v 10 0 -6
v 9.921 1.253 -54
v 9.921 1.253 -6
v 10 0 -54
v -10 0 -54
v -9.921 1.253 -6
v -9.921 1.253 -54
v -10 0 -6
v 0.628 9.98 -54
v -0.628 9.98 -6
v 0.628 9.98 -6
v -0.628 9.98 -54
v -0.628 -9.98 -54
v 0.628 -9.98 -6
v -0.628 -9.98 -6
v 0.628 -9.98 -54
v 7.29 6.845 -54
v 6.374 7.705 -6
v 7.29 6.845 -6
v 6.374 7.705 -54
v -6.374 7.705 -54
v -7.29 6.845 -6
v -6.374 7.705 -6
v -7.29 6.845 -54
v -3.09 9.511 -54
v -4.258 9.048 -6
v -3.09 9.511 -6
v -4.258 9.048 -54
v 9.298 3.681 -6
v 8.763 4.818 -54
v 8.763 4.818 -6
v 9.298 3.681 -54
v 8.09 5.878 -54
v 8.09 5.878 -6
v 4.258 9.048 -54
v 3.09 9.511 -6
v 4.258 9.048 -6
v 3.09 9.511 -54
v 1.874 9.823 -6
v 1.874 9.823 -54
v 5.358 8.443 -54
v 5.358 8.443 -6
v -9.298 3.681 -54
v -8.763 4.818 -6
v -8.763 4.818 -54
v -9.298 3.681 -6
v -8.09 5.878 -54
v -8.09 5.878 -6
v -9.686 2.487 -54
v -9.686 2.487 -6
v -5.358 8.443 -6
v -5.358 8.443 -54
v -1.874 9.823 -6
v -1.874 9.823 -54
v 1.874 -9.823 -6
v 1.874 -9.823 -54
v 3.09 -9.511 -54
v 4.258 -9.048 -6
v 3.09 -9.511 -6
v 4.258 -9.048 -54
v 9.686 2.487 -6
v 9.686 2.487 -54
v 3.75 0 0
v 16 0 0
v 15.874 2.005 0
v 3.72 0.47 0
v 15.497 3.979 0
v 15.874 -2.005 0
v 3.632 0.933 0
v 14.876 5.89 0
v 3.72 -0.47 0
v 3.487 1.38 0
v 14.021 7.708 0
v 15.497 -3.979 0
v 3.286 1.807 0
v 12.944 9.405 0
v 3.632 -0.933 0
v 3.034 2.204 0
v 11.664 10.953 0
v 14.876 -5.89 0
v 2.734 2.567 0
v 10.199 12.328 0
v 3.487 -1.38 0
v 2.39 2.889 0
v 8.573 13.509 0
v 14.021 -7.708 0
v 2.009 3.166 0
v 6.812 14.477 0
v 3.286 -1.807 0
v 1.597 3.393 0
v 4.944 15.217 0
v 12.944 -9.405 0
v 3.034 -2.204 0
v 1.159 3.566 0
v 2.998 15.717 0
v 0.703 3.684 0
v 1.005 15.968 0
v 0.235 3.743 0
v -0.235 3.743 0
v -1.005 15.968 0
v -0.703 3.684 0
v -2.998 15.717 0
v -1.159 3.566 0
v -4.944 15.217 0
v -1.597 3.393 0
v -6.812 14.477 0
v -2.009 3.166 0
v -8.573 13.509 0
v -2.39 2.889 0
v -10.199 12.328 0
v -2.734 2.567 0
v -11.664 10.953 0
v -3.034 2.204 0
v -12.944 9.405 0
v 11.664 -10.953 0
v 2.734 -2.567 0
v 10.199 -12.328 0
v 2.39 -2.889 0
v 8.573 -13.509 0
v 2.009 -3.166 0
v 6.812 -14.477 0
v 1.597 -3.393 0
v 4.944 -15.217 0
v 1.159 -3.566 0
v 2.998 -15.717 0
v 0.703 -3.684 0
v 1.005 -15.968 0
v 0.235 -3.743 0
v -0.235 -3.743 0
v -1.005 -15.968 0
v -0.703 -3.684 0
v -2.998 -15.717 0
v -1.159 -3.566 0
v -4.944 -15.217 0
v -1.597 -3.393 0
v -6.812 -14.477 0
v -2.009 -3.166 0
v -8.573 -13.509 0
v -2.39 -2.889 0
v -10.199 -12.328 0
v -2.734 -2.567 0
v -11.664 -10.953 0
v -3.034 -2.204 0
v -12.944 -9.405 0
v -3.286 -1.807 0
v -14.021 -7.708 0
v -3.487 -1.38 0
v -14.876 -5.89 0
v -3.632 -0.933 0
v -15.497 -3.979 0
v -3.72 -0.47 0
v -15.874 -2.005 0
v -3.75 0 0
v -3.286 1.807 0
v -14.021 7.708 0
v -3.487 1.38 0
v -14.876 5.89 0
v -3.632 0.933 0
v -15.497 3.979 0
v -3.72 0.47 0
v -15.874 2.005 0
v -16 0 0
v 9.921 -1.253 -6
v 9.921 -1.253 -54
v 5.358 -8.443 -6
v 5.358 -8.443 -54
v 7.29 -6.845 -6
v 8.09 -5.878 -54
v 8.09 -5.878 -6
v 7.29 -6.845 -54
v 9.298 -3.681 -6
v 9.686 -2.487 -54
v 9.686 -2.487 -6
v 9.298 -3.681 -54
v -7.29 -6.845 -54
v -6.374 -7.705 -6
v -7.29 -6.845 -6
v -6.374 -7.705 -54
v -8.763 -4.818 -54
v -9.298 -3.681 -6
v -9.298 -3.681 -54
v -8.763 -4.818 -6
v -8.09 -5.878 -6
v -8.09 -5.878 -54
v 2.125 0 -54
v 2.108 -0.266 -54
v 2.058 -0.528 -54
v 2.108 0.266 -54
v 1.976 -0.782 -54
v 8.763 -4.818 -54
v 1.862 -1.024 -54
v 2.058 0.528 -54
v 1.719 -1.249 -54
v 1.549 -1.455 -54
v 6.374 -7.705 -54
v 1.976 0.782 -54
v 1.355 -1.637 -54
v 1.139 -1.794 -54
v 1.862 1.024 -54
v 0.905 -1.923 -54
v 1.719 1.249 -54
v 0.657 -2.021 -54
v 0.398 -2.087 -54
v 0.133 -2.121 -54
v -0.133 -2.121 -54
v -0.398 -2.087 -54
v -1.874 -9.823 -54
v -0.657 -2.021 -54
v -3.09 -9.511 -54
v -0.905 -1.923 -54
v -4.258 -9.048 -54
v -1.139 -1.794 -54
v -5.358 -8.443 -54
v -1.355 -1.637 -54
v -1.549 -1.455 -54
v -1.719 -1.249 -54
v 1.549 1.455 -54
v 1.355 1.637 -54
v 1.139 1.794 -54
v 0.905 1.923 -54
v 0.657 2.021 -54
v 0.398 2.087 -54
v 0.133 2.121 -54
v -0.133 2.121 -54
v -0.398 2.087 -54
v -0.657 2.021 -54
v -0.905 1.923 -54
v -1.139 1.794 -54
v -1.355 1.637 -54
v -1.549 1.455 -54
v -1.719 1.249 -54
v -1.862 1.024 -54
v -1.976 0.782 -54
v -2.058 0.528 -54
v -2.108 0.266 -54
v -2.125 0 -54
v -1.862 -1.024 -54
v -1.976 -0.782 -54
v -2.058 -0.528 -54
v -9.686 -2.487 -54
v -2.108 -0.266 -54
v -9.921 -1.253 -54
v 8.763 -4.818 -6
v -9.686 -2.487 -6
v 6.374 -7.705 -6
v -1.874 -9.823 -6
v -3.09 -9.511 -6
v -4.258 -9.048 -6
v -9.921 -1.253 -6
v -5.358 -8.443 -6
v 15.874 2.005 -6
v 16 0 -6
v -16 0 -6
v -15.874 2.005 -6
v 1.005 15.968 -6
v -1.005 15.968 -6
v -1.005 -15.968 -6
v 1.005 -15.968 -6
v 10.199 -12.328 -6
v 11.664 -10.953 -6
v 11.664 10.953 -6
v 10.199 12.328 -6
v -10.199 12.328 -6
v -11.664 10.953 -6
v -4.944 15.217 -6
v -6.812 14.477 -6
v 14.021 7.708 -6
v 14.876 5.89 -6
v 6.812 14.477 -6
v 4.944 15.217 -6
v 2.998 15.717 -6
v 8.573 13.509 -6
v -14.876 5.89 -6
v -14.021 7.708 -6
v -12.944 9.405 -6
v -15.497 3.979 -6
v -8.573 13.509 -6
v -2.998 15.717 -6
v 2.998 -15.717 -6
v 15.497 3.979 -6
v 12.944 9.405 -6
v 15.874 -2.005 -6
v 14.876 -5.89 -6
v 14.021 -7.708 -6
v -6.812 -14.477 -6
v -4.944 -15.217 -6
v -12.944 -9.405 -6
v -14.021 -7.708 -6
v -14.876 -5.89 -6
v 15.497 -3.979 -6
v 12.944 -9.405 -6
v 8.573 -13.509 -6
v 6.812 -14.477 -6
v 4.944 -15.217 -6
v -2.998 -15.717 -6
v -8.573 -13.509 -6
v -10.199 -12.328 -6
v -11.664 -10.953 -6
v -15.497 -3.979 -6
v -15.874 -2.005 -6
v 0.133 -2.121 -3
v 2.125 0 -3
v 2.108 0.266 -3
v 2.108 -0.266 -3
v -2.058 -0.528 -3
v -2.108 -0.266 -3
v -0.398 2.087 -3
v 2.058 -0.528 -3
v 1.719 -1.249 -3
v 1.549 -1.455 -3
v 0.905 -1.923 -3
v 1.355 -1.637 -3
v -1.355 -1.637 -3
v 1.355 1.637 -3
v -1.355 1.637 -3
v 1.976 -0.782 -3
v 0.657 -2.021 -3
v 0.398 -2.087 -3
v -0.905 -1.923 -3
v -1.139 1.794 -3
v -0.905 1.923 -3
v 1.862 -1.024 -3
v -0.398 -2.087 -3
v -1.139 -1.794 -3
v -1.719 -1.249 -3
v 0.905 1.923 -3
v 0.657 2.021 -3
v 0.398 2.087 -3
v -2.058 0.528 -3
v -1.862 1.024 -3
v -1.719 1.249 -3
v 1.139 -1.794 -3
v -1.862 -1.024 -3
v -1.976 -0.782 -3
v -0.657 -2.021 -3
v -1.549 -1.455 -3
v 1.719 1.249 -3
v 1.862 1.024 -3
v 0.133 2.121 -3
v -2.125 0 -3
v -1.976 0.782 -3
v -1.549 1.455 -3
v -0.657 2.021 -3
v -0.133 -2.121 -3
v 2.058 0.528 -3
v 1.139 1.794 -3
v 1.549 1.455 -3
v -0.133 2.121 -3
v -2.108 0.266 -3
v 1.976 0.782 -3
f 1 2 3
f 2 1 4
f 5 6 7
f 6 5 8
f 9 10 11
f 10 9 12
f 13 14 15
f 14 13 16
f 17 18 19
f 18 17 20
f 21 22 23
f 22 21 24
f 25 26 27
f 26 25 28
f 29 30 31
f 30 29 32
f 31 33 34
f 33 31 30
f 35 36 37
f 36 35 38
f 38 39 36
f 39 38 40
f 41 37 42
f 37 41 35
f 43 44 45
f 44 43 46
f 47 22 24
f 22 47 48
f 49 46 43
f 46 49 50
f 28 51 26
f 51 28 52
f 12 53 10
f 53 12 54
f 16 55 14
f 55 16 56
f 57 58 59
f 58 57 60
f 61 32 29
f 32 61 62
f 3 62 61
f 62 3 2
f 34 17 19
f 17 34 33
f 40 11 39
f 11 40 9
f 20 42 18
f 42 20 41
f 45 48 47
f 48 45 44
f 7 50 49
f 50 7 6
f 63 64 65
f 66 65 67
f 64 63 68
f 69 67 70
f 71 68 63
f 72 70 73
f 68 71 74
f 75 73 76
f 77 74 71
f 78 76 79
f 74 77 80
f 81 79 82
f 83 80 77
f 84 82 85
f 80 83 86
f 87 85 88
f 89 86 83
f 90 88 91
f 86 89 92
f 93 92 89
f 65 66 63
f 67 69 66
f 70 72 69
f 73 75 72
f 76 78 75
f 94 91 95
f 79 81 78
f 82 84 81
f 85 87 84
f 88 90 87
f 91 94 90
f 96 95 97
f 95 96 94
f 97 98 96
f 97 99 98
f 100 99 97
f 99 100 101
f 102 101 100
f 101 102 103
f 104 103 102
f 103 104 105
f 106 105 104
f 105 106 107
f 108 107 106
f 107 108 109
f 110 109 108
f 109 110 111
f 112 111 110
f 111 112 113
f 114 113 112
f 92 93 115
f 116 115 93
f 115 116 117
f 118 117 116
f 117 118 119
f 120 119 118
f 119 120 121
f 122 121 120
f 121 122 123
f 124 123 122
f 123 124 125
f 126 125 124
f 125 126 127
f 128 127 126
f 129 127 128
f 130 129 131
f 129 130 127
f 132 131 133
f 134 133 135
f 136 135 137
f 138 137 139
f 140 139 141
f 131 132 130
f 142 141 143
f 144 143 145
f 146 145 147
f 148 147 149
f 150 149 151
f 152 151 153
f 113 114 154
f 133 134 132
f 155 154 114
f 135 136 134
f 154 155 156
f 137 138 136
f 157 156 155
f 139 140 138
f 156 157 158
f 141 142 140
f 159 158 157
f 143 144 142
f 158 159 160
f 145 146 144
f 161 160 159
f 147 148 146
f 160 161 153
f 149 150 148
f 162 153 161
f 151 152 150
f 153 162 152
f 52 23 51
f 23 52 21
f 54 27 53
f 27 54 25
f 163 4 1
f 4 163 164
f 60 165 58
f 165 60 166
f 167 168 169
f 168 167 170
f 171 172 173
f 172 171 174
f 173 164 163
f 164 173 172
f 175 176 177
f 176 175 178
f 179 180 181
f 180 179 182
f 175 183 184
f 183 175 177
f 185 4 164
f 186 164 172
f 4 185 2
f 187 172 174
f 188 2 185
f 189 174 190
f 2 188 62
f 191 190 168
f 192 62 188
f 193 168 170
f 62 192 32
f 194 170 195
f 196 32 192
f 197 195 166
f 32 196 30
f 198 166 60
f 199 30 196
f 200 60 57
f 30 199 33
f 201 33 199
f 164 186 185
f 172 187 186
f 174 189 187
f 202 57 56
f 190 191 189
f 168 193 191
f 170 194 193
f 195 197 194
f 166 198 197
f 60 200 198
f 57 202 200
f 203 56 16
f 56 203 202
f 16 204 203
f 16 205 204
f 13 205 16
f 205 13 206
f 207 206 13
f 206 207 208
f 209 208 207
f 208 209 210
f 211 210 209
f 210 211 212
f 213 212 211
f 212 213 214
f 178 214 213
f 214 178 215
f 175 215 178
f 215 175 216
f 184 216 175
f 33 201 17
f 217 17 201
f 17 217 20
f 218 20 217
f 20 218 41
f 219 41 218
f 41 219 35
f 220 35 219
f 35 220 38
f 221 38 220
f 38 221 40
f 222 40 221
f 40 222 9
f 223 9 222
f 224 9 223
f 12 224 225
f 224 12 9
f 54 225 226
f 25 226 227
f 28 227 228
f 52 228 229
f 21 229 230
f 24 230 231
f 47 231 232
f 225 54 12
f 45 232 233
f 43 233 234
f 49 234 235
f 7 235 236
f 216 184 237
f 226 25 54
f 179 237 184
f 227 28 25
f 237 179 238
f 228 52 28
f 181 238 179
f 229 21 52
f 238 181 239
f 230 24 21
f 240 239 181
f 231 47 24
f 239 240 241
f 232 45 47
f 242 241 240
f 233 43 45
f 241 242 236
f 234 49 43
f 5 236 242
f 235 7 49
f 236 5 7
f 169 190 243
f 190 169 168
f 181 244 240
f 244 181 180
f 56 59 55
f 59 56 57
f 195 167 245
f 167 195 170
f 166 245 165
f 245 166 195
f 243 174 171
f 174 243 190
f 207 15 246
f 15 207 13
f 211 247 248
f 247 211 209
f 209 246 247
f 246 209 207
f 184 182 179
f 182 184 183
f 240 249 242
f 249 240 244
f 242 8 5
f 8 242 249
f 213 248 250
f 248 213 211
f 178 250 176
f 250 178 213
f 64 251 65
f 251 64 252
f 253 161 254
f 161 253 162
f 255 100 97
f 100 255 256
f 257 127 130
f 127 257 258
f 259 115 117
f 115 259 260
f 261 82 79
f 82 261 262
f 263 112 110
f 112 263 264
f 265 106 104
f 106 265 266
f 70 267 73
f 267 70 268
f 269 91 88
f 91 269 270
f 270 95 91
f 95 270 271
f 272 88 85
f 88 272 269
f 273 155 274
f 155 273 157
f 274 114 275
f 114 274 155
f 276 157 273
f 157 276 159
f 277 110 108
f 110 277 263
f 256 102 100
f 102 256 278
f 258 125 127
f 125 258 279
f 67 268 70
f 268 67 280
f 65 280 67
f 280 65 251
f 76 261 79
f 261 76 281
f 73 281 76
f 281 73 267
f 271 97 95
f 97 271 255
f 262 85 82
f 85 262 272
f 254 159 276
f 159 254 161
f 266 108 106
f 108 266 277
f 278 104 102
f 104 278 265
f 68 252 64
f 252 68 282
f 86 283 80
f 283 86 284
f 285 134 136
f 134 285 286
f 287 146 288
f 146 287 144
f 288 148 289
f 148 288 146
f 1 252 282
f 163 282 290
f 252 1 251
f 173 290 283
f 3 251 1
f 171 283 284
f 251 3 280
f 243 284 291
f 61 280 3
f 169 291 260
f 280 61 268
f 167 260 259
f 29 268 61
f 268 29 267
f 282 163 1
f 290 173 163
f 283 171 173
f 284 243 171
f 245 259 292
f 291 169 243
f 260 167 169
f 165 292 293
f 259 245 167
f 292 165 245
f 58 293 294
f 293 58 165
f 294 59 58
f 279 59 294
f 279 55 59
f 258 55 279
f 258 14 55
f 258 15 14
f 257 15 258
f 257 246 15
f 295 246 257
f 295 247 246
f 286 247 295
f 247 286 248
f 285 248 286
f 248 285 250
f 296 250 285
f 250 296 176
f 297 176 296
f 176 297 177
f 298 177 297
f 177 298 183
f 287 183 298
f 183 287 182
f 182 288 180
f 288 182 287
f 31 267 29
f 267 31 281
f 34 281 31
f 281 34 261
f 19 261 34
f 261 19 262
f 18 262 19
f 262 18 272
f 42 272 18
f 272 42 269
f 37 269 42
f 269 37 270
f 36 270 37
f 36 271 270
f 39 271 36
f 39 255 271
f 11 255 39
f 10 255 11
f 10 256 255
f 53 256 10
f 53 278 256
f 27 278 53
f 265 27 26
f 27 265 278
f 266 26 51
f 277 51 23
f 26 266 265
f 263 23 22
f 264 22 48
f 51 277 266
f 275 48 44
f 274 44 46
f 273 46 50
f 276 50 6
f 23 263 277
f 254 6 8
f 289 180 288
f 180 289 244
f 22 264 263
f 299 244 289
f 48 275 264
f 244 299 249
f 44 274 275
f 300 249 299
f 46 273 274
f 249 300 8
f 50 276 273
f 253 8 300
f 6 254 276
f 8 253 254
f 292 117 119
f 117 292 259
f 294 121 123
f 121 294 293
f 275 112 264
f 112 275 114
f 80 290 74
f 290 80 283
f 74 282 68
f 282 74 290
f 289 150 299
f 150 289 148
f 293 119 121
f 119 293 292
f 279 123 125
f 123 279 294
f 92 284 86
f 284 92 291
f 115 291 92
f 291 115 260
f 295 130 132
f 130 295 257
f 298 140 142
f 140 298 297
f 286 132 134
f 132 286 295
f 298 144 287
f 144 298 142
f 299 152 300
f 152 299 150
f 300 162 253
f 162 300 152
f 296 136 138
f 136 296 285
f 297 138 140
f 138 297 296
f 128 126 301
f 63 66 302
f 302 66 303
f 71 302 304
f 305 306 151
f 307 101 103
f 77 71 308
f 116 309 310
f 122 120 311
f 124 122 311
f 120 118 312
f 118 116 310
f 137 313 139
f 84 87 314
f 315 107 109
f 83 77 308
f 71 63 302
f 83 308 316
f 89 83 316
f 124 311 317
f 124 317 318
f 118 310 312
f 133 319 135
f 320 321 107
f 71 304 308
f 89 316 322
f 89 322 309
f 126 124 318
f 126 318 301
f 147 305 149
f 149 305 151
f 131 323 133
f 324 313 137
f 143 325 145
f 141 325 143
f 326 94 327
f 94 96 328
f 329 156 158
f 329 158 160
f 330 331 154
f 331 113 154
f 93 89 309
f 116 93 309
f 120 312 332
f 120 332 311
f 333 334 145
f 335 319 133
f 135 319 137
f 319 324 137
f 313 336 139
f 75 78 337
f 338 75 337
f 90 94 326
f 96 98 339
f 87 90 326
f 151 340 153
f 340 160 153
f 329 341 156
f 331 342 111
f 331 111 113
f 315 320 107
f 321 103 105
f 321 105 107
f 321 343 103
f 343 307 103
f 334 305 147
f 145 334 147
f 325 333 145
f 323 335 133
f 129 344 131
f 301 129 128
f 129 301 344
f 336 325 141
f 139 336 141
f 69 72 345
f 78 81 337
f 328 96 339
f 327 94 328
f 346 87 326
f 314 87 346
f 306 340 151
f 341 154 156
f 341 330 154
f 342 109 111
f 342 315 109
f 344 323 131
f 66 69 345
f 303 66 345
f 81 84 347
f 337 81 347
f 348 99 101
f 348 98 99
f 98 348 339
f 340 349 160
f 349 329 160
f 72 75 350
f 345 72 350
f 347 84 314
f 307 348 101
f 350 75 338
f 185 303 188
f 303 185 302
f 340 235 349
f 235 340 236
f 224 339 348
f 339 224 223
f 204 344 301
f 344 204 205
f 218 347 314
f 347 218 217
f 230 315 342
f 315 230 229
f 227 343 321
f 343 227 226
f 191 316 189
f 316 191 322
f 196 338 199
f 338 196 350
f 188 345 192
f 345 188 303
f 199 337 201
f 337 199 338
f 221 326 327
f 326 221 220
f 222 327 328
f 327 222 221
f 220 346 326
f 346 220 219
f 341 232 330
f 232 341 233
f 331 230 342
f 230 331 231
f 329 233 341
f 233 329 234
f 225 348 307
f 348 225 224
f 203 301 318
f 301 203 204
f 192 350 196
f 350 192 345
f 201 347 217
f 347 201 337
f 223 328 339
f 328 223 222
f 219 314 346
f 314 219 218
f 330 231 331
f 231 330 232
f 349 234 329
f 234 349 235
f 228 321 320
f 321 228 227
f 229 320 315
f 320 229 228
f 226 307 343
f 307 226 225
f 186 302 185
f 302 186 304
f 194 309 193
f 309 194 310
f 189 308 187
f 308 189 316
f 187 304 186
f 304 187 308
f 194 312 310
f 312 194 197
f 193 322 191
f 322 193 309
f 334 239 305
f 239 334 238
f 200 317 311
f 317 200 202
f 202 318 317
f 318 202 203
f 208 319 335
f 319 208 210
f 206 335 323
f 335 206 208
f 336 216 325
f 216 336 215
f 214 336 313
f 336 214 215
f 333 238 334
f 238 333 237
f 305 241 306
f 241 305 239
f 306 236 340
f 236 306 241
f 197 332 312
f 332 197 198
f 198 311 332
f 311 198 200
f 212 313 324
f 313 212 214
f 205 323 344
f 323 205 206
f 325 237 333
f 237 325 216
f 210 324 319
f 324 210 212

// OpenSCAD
$fn = 50;


difference() {
	union() {
		translate(v = [0, 0, -54.0000000000]) {
			cylinder(h = 54, r = 10.0000000000);
		}
		translate(v = [0, 0, -6.0000000000]) {
			cylinder(h = 6, r = 16.0000000000);
		}
	}
	union() {
		translate(v = [0, 0, 0]) {
			rotate(a = [0, 0, 0]) {
				difference() {
					union() {
						#translate(v = [0, 0, -54.0000000000]) {
							cylinder(h = 54, r = 2.0000000000);
						}
						#translate(v = [0, 0, -3]) {
							cylinder(h = 3, r = 10.0000000000, r1 = 2.1250000000, r2 = 3.7500000000);
						}
						#translate(v = [0, 0, -54.0000000000]) {
							cylinder(h = 54, r = 2.1250000000);
						}
						#translate(v = [0, 0, -54.0000000000]) {
							cylinder(h = 54, r = 2.0000000000);
						}
					}
					union();
				}
			}
		}
	}
}
